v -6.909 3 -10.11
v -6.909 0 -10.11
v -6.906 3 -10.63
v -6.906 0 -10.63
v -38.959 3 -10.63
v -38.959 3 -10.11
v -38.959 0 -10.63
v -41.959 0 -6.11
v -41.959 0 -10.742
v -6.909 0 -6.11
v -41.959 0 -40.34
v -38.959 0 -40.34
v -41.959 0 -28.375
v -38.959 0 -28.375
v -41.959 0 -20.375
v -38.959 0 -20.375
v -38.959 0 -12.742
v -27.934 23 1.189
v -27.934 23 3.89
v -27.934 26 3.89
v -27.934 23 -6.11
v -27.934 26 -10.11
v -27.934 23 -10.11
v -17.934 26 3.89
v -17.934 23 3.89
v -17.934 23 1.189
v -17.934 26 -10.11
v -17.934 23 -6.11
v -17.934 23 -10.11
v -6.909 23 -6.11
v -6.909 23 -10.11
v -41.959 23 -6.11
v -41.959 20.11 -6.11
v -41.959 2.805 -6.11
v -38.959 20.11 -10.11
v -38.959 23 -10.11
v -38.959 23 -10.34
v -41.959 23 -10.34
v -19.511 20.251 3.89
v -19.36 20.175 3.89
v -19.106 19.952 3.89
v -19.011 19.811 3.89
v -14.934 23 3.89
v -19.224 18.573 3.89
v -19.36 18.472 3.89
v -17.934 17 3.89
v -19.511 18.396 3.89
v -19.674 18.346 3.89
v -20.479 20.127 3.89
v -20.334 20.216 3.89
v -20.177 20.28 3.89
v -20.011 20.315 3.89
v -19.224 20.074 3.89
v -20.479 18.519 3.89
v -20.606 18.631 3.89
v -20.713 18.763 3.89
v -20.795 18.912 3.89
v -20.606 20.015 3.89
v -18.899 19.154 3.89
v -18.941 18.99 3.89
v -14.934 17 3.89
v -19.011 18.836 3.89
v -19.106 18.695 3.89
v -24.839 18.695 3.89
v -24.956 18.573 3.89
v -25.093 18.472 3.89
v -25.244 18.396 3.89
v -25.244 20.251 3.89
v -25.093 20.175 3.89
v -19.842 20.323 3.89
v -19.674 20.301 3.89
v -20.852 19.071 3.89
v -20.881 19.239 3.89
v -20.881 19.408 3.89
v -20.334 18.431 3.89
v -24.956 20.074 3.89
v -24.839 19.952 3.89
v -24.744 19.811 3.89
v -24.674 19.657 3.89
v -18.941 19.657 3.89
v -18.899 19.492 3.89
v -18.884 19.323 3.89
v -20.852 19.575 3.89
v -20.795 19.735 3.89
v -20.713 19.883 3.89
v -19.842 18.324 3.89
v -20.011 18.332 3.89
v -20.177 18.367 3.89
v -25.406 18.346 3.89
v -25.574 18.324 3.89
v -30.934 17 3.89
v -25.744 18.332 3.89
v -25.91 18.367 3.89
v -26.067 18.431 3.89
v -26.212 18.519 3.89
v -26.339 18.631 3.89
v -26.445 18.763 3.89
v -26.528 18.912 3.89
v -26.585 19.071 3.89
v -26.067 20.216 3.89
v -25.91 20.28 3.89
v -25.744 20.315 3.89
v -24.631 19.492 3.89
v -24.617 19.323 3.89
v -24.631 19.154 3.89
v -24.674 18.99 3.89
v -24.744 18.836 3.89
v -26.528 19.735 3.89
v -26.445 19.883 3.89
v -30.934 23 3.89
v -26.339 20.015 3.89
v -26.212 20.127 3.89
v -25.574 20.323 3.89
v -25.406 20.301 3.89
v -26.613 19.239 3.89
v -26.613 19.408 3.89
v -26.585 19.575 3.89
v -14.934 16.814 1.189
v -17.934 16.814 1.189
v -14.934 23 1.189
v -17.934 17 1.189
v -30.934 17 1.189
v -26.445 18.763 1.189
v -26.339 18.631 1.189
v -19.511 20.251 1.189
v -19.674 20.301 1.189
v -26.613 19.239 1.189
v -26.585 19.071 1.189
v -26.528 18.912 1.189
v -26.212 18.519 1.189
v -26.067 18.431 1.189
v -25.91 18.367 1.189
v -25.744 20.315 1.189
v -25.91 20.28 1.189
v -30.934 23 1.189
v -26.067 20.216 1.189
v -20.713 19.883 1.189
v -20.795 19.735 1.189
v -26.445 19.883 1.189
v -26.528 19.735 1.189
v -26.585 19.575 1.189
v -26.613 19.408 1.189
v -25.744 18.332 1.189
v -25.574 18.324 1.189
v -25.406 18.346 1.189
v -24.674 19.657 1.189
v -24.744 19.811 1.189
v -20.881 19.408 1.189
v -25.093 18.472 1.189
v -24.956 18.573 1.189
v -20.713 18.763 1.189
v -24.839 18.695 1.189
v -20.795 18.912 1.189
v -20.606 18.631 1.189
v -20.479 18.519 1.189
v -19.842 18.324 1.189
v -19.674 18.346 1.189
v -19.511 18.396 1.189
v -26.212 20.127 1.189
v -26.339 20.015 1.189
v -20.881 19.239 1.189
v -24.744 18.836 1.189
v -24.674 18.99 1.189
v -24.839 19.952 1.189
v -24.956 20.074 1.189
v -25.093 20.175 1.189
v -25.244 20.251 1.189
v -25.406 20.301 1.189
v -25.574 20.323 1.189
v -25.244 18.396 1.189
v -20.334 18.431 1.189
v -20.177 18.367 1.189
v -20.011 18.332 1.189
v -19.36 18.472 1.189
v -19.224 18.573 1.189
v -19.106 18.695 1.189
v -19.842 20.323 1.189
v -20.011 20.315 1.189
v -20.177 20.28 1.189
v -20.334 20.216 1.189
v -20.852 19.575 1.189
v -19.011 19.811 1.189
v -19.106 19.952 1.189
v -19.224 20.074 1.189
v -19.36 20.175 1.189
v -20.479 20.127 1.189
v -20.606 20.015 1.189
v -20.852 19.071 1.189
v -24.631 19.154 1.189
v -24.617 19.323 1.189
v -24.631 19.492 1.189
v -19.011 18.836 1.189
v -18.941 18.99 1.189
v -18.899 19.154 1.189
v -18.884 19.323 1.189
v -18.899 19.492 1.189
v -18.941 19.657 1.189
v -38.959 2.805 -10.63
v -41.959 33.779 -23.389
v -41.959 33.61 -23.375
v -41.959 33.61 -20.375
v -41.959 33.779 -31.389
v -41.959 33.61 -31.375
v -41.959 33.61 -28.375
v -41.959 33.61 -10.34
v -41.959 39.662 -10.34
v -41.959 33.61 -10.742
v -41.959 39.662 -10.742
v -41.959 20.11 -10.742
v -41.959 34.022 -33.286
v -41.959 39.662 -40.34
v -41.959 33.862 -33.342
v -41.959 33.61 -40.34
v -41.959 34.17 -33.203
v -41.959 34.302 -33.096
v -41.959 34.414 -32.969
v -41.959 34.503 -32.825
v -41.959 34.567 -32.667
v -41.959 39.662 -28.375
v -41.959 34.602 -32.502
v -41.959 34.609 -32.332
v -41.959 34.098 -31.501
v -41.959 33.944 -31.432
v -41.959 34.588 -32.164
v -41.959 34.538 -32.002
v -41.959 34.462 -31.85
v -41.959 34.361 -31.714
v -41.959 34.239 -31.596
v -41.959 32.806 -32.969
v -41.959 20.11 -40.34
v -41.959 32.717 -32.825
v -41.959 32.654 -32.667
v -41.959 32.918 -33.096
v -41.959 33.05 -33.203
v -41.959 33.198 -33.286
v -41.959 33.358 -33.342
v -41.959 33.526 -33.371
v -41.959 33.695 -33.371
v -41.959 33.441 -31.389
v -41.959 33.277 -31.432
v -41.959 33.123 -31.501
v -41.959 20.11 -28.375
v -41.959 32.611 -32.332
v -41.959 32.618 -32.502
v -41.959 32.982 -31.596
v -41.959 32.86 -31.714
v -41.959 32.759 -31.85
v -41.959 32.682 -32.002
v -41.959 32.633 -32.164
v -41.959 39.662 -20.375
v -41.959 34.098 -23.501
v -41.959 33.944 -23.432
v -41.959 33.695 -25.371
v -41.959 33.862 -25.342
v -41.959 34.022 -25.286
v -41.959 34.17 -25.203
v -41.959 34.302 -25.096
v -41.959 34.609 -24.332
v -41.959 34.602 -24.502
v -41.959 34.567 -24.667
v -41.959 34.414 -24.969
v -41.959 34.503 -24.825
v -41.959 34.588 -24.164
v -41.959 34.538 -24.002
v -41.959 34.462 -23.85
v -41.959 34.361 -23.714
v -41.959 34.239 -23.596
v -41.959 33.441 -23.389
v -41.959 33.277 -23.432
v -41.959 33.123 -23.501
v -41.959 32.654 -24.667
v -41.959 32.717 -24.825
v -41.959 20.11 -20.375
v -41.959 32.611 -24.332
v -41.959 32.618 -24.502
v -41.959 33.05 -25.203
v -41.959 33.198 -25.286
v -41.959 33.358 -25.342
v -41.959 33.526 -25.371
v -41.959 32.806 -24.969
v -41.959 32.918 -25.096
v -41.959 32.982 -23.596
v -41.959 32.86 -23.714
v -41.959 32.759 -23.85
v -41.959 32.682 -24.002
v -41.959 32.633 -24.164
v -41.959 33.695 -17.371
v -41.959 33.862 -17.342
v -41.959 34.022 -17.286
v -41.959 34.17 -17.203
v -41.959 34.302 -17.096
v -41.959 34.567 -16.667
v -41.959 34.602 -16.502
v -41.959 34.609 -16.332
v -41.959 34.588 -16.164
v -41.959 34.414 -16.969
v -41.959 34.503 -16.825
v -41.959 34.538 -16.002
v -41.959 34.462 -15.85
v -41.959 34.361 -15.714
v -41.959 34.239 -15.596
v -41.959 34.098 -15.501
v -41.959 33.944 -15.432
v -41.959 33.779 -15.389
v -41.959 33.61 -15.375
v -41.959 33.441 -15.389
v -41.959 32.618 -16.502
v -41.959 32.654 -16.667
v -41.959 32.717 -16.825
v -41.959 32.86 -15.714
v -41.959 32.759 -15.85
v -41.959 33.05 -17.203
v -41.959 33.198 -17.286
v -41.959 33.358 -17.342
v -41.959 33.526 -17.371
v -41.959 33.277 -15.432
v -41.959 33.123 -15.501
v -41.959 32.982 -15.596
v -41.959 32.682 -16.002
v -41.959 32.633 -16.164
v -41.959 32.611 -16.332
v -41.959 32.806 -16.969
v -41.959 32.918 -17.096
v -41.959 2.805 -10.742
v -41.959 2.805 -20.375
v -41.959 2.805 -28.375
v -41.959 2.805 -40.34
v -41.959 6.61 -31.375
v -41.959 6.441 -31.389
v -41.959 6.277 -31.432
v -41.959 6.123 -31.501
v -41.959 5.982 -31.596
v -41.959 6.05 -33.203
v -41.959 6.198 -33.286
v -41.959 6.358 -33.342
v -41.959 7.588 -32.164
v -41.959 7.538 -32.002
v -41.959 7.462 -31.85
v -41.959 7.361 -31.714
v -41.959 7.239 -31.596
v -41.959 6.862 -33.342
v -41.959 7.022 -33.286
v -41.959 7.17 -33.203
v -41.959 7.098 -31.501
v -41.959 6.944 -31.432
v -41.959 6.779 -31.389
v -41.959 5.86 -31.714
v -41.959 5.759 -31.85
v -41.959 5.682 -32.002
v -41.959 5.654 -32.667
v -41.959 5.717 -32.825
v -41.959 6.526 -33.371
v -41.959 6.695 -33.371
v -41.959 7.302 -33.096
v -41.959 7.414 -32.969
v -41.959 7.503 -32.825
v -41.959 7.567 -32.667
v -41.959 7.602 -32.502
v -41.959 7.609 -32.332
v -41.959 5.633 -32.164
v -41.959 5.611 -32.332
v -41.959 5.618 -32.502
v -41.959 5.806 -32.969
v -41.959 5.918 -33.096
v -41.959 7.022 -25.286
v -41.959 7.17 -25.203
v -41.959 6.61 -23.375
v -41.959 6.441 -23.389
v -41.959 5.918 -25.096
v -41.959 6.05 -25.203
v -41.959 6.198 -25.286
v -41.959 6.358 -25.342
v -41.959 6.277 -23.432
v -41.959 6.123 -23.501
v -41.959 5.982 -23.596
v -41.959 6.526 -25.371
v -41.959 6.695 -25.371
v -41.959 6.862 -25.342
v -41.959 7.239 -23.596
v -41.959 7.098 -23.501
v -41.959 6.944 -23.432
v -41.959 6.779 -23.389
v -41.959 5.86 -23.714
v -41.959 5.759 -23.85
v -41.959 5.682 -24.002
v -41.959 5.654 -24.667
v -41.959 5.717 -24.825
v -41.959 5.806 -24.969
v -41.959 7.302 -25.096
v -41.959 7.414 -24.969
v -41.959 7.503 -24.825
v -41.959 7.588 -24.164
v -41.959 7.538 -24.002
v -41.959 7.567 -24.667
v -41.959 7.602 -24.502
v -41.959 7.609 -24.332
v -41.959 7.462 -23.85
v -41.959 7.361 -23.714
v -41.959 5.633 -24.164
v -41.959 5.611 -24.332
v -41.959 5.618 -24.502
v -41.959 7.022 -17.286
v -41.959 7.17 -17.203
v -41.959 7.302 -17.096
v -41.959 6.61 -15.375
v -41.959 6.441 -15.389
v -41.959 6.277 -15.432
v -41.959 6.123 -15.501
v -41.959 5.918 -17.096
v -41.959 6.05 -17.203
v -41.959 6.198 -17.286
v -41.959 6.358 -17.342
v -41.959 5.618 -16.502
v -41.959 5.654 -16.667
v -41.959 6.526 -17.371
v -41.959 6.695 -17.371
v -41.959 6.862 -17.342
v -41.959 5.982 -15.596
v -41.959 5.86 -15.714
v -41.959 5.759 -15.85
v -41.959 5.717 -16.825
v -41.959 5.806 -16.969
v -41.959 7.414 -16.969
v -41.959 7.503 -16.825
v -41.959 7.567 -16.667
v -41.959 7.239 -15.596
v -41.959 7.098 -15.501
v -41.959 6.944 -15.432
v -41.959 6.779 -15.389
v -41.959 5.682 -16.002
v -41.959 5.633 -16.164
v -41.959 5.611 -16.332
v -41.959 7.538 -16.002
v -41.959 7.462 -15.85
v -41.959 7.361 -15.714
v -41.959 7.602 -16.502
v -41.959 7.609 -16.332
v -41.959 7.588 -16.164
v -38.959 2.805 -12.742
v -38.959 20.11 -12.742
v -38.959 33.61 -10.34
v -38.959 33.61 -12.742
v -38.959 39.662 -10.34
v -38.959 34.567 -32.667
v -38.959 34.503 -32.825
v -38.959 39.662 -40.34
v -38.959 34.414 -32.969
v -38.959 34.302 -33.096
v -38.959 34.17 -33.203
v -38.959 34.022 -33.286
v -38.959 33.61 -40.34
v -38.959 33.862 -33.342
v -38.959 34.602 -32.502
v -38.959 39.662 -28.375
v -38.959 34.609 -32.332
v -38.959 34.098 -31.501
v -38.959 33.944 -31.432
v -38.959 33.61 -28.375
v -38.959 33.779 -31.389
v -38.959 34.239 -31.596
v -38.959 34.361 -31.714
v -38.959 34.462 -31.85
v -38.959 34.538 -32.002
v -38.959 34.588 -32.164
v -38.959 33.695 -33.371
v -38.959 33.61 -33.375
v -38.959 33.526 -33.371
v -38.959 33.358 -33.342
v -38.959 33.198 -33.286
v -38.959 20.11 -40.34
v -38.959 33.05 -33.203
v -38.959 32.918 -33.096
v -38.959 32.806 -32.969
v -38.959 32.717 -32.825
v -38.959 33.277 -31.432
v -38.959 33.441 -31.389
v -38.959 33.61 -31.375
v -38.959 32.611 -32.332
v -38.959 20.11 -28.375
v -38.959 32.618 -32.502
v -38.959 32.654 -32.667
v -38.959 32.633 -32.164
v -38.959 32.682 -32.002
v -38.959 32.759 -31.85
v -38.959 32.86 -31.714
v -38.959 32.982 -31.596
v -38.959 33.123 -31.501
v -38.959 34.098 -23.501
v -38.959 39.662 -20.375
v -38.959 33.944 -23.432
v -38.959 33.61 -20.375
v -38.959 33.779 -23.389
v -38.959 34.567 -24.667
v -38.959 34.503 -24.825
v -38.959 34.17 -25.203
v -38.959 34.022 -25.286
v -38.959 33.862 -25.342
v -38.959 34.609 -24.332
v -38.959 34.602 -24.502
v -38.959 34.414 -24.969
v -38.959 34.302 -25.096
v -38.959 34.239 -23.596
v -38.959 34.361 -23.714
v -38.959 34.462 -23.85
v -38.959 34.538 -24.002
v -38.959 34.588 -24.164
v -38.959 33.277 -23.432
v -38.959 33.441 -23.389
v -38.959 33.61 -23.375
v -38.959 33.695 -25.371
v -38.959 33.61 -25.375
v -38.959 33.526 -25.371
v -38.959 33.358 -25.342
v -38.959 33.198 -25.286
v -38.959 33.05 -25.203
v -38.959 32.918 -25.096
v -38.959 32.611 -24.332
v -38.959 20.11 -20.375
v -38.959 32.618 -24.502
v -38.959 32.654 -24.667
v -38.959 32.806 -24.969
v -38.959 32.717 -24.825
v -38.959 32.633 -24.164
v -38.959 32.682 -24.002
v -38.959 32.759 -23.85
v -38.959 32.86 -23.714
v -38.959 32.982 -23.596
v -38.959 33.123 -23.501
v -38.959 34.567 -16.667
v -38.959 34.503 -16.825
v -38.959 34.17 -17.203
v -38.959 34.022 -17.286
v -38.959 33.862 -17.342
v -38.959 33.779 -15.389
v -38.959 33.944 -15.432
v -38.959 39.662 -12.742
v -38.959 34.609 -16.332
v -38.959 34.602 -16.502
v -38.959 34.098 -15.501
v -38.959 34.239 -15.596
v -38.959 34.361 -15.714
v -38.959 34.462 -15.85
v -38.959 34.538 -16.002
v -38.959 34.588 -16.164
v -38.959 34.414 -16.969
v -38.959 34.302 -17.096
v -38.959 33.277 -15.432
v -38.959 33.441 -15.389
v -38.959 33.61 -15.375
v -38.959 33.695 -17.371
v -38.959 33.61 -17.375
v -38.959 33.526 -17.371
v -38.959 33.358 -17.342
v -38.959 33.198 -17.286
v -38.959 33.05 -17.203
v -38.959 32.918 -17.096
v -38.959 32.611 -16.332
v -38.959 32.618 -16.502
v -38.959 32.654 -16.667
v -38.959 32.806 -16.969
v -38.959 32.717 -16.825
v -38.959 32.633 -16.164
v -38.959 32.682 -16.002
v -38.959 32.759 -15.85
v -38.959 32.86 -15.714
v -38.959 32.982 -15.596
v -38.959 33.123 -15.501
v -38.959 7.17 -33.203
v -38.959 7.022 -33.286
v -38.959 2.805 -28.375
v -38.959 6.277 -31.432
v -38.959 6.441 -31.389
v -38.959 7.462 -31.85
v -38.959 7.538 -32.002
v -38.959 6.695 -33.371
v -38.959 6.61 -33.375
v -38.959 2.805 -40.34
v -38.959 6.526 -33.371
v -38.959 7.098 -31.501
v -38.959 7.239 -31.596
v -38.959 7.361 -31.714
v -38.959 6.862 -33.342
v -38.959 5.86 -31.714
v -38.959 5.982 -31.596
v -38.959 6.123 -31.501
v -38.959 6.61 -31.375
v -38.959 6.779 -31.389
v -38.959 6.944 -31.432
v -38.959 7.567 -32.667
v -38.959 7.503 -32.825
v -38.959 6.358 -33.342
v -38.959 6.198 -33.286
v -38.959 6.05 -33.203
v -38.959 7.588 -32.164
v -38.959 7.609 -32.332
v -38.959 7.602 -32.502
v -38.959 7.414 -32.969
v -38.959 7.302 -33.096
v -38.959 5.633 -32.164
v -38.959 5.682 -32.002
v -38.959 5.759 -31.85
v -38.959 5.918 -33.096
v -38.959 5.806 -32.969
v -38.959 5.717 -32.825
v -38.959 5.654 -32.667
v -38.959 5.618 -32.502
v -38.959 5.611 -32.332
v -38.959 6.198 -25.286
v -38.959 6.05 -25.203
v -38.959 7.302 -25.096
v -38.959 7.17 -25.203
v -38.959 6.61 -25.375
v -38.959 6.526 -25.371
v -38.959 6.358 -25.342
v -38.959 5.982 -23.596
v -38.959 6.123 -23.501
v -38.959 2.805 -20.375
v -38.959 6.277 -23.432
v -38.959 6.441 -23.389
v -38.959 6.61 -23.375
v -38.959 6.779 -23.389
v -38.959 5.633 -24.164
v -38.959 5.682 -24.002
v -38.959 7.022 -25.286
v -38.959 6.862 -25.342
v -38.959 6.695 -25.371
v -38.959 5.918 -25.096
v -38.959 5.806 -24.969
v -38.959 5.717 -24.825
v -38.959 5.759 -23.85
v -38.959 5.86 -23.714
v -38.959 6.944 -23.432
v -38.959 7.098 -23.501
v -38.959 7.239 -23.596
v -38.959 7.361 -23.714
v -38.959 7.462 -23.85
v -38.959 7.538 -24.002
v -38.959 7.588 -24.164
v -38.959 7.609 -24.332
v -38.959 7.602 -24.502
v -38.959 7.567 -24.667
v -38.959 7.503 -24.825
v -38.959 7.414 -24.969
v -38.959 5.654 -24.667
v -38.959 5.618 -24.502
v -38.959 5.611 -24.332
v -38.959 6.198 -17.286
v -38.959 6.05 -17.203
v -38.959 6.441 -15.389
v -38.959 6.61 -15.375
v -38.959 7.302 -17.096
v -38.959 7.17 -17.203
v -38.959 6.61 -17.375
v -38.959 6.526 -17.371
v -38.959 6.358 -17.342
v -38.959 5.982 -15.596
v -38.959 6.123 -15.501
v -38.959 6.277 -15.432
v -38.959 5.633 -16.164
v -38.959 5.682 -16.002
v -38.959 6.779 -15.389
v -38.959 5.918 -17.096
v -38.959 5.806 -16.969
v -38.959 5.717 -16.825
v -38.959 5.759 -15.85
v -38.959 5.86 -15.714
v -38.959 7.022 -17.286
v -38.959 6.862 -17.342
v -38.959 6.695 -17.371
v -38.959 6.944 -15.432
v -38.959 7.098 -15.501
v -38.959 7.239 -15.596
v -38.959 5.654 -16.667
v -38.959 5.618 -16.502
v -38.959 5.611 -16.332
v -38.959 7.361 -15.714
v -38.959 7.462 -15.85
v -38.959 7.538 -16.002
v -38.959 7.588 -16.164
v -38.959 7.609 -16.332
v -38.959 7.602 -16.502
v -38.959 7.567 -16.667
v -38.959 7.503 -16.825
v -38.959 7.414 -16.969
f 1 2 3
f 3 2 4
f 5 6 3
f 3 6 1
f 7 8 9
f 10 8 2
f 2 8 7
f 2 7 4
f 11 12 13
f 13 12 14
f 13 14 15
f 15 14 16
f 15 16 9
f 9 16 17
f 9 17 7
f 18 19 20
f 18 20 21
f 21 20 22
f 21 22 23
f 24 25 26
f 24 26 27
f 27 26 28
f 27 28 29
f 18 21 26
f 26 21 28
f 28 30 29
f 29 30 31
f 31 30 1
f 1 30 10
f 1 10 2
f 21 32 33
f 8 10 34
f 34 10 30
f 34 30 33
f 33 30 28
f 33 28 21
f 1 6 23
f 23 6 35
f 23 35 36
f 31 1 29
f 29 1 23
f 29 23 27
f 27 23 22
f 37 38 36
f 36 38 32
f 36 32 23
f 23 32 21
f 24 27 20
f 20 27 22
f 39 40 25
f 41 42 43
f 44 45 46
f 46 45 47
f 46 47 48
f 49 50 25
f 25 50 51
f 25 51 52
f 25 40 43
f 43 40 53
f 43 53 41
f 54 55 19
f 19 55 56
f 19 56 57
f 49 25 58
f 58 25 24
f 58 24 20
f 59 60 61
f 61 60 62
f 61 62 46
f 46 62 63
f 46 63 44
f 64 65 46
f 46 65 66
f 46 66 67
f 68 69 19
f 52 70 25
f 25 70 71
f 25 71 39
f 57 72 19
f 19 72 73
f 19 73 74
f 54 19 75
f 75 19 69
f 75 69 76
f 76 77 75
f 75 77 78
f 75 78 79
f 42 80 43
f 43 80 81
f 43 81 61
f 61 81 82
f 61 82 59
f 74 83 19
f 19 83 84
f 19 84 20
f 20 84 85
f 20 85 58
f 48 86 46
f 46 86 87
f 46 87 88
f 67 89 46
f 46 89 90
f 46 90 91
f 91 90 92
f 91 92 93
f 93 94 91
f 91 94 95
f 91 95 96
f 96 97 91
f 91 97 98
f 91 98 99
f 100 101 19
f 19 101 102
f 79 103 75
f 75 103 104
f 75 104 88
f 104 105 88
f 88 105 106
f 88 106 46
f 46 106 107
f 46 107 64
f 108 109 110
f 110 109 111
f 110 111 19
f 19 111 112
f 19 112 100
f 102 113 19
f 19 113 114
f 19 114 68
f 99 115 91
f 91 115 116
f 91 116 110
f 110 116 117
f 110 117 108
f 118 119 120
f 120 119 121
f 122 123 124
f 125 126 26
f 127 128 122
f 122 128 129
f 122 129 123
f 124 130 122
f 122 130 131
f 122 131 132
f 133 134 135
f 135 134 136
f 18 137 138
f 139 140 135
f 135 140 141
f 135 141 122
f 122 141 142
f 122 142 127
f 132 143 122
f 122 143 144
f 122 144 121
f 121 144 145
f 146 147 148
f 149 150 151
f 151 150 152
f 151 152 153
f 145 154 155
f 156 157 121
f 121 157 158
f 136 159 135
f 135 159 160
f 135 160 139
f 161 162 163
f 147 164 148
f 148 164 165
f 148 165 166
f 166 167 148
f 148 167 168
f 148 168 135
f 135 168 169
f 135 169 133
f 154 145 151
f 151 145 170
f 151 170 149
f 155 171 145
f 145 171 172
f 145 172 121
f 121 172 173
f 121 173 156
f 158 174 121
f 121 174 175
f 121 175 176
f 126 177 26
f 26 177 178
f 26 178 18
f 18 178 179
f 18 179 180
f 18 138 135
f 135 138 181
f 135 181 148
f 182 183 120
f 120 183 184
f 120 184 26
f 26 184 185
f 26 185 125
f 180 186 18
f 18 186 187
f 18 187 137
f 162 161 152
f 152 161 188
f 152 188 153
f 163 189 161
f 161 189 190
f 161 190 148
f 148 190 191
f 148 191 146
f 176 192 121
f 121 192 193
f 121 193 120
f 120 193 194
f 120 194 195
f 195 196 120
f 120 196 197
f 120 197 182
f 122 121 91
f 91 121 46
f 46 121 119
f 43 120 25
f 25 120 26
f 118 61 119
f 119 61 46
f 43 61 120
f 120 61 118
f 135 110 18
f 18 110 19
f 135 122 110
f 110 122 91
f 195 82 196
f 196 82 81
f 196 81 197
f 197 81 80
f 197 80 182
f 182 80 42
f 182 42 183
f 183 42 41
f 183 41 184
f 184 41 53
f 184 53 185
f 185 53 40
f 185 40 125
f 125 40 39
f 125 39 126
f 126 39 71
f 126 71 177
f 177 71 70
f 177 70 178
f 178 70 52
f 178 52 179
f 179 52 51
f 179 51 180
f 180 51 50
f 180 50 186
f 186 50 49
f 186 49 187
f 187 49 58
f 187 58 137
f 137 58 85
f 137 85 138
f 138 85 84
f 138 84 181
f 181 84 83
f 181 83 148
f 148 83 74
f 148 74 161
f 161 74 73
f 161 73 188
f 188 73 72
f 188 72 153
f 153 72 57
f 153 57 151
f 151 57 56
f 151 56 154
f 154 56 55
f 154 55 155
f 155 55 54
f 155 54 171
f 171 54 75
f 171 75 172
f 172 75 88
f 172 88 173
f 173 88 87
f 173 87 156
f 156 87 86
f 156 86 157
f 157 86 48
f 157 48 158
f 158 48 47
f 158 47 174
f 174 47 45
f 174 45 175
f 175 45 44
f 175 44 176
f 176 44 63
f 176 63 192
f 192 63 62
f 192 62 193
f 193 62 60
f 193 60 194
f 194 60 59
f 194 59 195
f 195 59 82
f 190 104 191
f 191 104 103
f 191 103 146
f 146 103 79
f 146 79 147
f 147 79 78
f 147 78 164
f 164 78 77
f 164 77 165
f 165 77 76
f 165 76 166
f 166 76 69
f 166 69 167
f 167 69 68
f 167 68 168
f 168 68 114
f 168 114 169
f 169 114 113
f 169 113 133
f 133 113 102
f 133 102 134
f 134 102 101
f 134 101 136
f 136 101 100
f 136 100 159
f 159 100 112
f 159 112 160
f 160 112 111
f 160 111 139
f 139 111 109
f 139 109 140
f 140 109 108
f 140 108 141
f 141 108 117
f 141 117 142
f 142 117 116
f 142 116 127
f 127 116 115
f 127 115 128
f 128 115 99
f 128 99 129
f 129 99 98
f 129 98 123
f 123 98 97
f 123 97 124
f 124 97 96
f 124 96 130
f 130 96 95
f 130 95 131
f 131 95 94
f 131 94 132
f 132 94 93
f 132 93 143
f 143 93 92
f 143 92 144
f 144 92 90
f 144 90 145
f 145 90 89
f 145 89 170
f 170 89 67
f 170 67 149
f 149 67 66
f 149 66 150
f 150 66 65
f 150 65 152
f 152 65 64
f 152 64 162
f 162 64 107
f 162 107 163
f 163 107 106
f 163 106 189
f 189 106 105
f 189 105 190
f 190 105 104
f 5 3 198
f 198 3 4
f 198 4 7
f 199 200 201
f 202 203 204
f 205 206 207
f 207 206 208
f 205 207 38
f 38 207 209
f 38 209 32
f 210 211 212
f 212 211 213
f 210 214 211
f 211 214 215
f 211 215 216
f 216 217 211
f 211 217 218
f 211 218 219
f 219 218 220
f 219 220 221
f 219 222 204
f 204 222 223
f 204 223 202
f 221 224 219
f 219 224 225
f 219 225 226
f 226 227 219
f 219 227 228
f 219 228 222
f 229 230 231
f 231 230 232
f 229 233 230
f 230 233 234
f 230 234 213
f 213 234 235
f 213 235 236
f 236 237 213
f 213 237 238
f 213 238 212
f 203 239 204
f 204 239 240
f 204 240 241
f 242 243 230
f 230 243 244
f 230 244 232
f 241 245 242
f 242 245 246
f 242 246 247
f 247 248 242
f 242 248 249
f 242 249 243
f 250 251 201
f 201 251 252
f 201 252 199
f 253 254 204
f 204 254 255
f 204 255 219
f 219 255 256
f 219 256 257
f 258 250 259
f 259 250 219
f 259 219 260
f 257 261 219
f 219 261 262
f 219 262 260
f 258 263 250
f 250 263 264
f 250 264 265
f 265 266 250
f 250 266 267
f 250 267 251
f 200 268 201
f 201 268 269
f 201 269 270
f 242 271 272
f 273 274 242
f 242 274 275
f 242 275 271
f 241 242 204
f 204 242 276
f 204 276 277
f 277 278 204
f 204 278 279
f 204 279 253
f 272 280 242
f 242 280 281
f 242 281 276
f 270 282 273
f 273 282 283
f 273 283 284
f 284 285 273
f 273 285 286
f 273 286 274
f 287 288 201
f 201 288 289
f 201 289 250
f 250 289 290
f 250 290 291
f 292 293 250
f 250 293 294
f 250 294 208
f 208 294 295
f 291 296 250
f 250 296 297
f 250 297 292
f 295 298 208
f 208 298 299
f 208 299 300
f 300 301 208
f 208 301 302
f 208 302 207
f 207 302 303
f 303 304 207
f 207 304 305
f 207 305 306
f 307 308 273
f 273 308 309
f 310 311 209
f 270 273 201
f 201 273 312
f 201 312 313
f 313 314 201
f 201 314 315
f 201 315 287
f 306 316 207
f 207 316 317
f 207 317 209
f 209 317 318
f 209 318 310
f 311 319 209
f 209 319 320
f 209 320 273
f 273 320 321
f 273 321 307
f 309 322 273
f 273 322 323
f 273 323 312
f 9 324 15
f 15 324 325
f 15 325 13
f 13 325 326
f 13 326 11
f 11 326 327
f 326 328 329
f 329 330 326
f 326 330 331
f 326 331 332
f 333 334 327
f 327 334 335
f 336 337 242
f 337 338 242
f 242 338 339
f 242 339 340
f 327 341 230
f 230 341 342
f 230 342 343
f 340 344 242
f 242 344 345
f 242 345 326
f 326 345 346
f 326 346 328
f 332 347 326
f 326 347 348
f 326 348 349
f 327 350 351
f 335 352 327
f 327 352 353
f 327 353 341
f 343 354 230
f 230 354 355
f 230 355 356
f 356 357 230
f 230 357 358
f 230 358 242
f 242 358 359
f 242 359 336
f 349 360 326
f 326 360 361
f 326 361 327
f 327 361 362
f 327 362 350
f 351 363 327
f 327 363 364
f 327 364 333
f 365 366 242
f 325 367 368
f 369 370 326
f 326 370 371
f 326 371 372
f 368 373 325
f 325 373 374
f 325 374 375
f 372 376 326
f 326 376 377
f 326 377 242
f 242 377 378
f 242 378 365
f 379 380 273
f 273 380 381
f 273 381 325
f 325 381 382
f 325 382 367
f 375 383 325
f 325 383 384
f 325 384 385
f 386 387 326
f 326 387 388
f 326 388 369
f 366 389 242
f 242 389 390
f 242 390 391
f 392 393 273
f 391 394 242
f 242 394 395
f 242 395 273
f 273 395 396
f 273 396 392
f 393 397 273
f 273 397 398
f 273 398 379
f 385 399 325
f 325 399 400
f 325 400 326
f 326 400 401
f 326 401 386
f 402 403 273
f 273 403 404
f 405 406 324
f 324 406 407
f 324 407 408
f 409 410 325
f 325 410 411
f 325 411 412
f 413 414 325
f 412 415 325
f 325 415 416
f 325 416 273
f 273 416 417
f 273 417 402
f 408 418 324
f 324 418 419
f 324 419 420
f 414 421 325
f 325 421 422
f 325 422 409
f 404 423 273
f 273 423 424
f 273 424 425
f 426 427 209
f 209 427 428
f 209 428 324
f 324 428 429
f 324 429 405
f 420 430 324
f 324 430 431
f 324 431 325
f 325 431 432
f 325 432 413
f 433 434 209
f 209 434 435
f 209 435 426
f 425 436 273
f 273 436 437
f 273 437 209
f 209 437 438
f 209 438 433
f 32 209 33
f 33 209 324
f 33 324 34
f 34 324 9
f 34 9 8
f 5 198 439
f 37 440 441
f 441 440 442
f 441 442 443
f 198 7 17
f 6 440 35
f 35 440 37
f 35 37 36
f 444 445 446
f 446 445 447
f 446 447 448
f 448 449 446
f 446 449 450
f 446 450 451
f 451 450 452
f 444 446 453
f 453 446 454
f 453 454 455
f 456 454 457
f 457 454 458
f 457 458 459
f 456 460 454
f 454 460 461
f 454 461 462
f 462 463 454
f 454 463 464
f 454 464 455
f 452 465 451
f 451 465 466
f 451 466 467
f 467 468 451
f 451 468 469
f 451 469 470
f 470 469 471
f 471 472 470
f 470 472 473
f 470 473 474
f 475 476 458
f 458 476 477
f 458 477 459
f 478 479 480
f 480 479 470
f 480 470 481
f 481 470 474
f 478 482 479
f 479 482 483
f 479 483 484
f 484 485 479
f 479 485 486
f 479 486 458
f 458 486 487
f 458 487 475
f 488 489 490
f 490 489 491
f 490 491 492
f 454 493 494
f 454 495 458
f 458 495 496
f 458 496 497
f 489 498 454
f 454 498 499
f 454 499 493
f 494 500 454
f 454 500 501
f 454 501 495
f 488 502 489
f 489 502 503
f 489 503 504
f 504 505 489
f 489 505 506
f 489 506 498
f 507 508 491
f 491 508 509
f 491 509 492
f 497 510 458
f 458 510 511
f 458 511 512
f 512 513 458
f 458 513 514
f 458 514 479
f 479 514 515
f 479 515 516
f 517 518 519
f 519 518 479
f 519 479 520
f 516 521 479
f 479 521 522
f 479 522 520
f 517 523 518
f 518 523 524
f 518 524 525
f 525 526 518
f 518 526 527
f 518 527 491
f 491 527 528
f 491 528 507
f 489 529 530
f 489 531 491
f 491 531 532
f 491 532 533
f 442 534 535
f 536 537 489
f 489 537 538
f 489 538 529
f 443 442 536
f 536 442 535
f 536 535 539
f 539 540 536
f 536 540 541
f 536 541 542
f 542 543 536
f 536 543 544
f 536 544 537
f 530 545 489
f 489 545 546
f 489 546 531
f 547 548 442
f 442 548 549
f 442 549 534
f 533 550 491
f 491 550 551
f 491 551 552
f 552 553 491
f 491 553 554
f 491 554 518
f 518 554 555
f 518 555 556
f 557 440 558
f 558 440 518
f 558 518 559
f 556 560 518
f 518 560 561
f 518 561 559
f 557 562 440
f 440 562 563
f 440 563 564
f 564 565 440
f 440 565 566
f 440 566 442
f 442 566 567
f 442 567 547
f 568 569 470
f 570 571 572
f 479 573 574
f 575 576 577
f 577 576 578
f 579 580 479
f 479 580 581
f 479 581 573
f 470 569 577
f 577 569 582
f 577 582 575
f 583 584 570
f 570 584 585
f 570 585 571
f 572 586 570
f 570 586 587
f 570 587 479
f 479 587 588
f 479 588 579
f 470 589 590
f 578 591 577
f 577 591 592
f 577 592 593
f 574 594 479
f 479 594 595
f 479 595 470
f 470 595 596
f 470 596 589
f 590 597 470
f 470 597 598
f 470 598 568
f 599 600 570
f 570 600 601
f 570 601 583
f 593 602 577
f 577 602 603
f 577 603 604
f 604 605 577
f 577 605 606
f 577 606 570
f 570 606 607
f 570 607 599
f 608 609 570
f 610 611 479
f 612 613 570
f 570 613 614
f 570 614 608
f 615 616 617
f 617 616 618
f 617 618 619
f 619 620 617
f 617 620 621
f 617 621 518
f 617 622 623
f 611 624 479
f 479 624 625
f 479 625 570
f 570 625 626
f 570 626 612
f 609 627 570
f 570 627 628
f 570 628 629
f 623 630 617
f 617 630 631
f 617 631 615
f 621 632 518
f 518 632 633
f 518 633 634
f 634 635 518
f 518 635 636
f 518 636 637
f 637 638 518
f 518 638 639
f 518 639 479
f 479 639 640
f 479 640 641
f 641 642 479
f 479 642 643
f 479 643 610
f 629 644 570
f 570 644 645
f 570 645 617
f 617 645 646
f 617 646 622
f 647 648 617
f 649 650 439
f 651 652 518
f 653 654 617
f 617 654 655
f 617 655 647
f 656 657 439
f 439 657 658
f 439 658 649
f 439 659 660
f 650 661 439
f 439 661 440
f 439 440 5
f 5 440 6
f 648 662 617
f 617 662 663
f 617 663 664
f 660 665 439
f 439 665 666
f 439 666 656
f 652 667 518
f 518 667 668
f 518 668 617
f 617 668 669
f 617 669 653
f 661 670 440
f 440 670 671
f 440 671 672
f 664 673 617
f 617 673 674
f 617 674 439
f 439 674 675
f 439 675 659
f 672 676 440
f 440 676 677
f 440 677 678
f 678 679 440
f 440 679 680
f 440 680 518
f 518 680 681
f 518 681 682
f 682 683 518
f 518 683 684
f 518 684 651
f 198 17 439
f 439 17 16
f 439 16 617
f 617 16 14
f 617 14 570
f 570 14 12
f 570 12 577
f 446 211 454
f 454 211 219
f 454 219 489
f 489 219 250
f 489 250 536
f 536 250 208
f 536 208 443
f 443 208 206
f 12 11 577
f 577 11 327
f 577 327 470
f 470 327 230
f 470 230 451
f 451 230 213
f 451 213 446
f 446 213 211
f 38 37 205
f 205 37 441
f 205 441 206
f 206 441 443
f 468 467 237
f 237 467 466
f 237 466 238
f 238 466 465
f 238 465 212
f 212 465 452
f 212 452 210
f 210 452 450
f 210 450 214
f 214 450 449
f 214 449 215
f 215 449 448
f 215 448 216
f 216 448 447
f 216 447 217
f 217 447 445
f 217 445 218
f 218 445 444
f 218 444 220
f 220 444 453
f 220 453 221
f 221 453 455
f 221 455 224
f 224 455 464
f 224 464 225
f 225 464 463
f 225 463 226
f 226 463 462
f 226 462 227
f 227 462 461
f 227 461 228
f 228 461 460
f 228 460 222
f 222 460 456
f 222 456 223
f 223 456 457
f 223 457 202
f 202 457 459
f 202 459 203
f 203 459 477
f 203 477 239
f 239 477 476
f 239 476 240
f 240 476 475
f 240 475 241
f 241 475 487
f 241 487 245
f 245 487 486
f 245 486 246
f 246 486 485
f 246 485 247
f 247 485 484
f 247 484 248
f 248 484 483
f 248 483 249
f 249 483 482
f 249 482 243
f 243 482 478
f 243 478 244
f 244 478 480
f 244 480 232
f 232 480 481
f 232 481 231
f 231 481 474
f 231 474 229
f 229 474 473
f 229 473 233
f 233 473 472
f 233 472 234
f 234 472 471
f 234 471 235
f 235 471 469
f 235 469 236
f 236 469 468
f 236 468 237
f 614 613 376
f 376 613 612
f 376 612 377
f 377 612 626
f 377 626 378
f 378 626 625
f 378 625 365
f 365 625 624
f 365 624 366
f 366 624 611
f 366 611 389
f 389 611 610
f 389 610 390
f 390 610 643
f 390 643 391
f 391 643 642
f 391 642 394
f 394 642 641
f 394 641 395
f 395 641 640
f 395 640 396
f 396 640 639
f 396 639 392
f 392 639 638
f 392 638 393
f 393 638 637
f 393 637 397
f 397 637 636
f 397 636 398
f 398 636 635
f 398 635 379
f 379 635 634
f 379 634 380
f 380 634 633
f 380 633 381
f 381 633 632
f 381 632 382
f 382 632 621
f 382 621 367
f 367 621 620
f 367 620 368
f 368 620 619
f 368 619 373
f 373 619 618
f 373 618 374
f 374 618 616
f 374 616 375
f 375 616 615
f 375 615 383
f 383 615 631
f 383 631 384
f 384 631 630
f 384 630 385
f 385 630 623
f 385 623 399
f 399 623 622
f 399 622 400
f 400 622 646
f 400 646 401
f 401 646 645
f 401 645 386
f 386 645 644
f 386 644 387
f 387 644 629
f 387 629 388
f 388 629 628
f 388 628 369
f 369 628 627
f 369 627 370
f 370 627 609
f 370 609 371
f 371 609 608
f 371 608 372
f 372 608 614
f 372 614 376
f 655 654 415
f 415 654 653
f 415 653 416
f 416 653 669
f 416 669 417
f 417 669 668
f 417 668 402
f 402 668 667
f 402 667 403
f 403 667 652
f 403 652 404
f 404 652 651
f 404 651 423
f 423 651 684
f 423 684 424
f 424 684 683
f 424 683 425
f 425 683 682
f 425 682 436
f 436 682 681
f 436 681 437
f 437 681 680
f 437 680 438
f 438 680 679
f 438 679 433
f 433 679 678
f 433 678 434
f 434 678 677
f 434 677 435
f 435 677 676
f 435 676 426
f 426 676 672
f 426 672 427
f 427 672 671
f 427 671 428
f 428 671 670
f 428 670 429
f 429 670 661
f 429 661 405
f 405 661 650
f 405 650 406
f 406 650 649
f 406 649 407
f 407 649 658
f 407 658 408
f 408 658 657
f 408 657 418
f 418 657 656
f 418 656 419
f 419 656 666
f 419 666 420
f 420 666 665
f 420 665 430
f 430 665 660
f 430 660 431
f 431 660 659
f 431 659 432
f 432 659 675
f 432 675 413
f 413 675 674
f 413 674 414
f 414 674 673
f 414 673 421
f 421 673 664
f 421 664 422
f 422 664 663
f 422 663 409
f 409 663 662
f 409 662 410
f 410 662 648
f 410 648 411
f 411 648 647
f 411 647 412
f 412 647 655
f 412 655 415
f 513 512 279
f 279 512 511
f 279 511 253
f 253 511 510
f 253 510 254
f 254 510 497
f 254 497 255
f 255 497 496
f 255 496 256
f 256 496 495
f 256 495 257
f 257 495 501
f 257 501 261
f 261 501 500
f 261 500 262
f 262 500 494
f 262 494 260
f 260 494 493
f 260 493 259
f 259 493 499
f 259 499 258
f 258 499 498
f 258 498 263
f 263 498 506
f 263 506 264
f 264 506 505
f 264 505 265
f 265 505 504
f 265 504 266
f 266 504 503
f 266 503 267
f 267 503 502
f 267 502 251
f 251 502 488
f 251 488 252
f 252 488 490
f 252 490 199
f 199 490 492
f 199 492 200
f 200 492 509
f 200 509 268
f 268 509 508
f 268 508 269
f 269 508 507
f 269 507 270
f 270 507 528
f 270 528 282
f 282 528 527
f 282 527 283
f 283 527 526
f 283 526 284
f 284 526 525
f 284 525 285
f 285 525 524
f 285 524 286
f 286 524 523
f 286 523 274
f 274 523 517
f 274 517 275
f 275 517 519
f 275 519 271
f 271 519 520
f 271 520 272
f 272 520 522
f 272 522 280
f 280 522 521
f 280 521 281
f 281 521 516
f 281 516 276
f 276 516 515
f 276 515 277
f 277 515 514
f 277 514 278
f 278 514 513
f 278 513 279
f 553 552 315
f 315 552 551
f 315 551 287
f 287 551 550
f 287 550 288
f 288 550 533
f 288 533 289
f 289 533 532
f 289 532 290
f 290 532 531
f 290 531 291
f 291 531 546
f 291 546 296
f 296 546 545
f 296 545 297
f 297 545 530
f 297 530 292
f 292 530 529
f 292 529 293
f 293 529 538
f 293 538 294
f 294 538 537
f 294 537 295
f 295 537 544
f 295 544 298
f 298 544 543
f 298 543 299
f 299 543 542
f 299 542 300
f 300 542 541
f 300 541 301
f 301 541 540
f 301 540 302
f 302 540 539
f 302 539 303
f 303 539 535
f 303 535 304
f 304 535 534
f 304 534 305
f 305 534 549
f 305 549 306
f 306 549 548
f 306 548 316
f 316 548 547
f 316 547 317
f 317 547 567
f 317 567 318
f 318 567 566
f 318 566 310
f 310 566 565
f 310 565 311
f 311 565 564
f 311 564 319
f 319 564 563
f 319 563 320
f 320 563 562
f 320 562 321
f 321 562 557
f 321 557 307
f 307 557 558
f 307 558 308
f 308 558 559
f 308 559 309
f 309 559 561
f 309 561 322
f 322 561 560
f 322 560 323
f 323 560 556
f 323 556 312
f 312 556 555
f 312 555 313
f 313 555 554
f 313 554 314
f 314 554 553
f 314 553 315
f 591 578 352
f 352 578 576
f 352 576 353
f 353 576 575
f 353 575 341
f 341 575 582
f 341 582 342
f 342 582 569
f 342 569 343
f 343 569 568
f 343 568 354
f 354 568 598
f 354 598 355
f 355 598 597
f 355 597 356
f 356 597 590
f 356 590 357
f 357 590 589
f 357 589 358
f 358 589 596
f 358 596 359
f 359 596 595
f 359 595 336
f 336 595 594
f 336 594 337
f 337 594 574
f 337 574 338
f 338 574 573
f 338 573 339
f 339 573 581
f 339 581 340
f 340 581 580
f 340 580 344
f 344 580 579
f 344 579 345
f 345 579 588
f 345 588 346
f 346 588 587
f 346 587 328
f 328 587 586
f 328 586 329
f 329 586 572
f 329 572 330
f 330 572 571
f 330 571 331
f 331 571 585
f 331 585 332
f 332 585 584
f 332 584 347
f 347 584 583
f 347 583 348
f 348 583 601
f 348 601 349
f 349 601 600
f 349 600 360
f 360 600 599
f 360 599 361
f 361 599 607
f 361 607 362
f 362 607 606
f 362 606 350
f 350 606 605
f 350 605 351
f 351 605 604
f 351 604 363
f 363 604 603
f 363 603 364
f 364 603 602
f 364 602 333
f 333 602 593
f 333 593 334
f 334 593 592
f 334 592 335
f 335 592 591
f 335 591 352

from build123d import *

# Parameters (mm, degrees)
ESQUISSE1_R             = 1
BOSS_EXTRU_1_DEPTH      = 3
ESQUISSE2_W             = 32.050081832
ESQUISSE2_H             = 3
BOSS_EXTRU_2_DEPTH      = 4
ESQUISSE3_W             = 32.050081832
ESQUISSE3_H             = 4
BOSS_EXTRU_3_DEPTH      = 20
BOSS_EXTRU_4_DEPTH      = 10
BOSS_EXTRU_4_DEPTH_BACK = 4
ESQUISSE5_W             = 10
ESQUISSE5_H             = 2.701469748
BOSS_EXTRU_5_DEPTH      = 6
BOSS_EXTRU_6_DEPTH      = 3
ESQUISSE7_W             = 2.701469748
ESQUISSE7_H             = 6
BOSS_EXTRU_7_DEPTH      = 3
ESQUISSE8_R             = 1
ENL_V_MAT_EXTRU_1_DEPTH = 5
ESQUISSE9_W             = 32.395093649
ESQUISSE9_H             = 3
ENL_V_MAT_EXTRU_2_DEPTH = 24
ESQUISSE10_W            = 4.230170434
ESQUISSE10_H            = 23
BOSS_EXTRU_8_DEPTH      = 3
ESQUISSE11_W            = 3
ESQUISSE11_H            = 39.66165995
BOSS_EXTRU_9_DEPTH      = 30
ESQUISSE12_R            = 1
ENL_V_MAT_EXTRU_3_DEPTH = 30


with BuildPart() as part:
    # Esquisse1 → Boss.-Extru.1 (new body)
    with BuildSketch(Plane(origin=(0, 0, 0), x_dir=(1, 0, 0), z_dir=(0, 1, 0))):
        Polygon((-38.959245403, 34.630440358), (-6.759245403, 34.630440358), (-6.909163571, 10.109841365), (-38.959245403, 10.109841365), align=None)
        with Locations(Location((-36.509163571, 15.109841365, 0), (0, 0, 270))):
            Circle(ESQUISSE1_R, mode=Mode.SUBTRACT)
        with Locations(Location((-9.509163571, 15.109841365, 0), (0, 0, 270))):
            Circle(ESQUISSE1_R, mode=Mode.SUBTRACT)
        with Locations(Location((-36.509163571, 23.109841365, 0), (0, 0, 270))):
            Circle(ESQUISSE1_R, mode=Mode.SUBTRACT)
        with Locations(Location((-9.509163571, 23.109841365, 0), (0, 0, 270))):
            Circle(ESQUISSE1_R, mode=Mode.SUBTRACT)
        with Locations(Location((-36.509163571, 31.109841365, 0), (0, 0, 270))):
            Circle(ESQUISSE1_R, mode=Mode.SUBTRACT)
        with Locations(Location((-9.509163571, 31.109841365, 0), (0, 0, 270))):
            Circle(ESQUISSE1_R, mode=Mode.SUBTRACT)
    extrude(amount=BOSS_EXTRU_1_DEPTH)

    # Esquisse2 → Boss.-Extru.2 (add)
    with BuildSketch(Plane.XY.offset(-10.109841365)):
        with Locations((-22.934204487, 1.5)):
            Rectangle(ESQUISSE2_W, ESQUISSE2_H)
    extrude(amount=BOSS_EXTRU_2_DEPTH)

    # Esquisse3 → Boss.-Extru.3 (add)
    with BuildSketch(Plane(origin=(0, 3, 0), x_dir=(1, 0, 0), z_dir=(0, 1, 0))):
        with Locations((-22.934204487, 8.109841365)):
            Rectangle(ESQUISSE3_W, ESQUISSE3_H)
    extrude(amount=BOSS_EXTRU_3_DEPTH)

    # Esquisse4 → Boss.-Extru.4 (add, two sides: drawn at the far end of the back side and taken through both)
    with BuildSketch(Plane.XY.offset(-6.109841365).offset(-BOSS_EXTRU_4_DEPTH_BACK)):
        Polygon((-22.934204487, 23), (-17.934204487, 23), (-17.934204487, 26), (-27.934204487, 26), (-27.934204487, 23), align=None)
    extrude(amount=BOSS_EXTRU_4_DEPTH + BOSS_EXTRU_4_DEPTH_BACK)

    # Esquisse5 → Boss.-Extru.5 (add)
    with BuildSketch(Plane.XZ.offset(-23)):
        with Locations((-22.934204487, 2.539423761)):
            Rectangle(ESQUISSE5_W, ESQUISSE5_H)
    extrude(amount=BOSS_EXTRU_5_DEPTH)

    # Esquisse6 → Boss.-Extru.6 (add)
    with BuildSketch(Plane(origin=(-17.934204487, 0, 0), x_dir=(0, 0, -1), z_dir=(1, 0, 0))):
        Polygon((-1.188688887, 23), (-3.890158635, 23), (-3.890158635, 17), (-1.188688887, 16.813684491), align=None)
    extrude(amount=BOSS_EXTRU_6_DEPTH)

    # Esquisse7 → Boss.-Extru.7 (add)
    with BuildSketch(Plane.ZY.offset(27.934204487)):
        with Locations((2.539423761, 20)):
            Rectangle(ESQUISSE7_W, ESQUISSE7_H)
    extrude(amount=BOSS_EXTRU_7_DEPTH)

    # Esquisse8 → Enlèv. mat.-Extru.1 (cut)
    with BuildSketch(Plane.XY.offset(3.890158635)):
        with Locations((-25.616934949, 19.323429725)):
            Circle(ESQUISSE8_R)
        with Locations((-19.884204487, 19.323429725)):
            Circle(ESQUISSE8_R)
    extrude(amount=-ENL_V_MAT_EXTRU_1_DEPTH, mode=Mode.SUBTRACT)

    # Esquisse9 → Enlèv. mat.-Extru.2 (cut)
    with BuildSketch(Plane(origin=(0, 0, -34.630440358), x_dir=(-1, 0, 0), z_dir=(0, 0, -1))):
        with Locations((22.956792228, 1.5)):
            Rectangle(ESQUISSE9_W, ESQUISSE9_H)
    extrude(amount=-ENL_V_MAT_EXTRU_2_DEPTH, mode=Mode.SUBTRACT)

    # Esquisse10 → Boss.-Extru.8 (add)
    with BuildSketch(Plane.ZY.offset(38.959245403)):
        with Locations((-8.224926582, 11.5)):
            Rectangle(ESQUISSE10_W, ESQUISSE10_H)
    extrude(amount=BOSS_EXTRU_8_DEPTH)

    # Esquisse11 → Boss.-Extru.9 (add)
    with BuildSketch(Plane(origin=(0, 0, -10.340011799), x_dir=(-1, 0, 0), z_dir=(0, 0, -1))):
        with Locations((40.459245403, 19.830829975)):
            Rectangle(ESQUISSE11_W, ESQUISSE11_H)
    extrude(amount=BOSS_EXTRU_9_DEPTH)

    # Esquisse12 → Enlèv. mat.-Extru.3 (cut)
    with BuildSketch(Plane(origin=(-41.959245403, -0.142686019, -42.326053617), x_dir=(0, -1, 0), z_dir=(-1, 0, 0))):
        with Locations(Location((-33.753075005, 25.951540398, 0), (0, 0, 90))):
            Circle(ESQUISSE12_R)
        with Locations(Location((-33.753075005, 17.951540398, 0), (0, 0, 90))):
            Circle(ESQUISSE12_R)
        with Locations(Location((-6.753075005, 25.951540398, 0), (0, 0, 90))):
            Circle(ESQUISSE12_R)
        with Locations(Location((-6.753075005, 17.951540398, 0), (0, 0, 90))):
            Circle(ESQUISSE12_R)
        with Locations(Location((-6.753075005, 9.951540398, 0), (0, 0, 90))):
            Circle(ESQUISSE12_R)
        with Locations(Location((-33.753075005, 9.951540398, 0), (0, 0, 90))):
            Circle(ESQUISSE12_R)
    extrude(amount=-ENL_V_MAT_EXTRU_3_DEPTH, mode=Mode.SUBTRACT)


solid = part.part
